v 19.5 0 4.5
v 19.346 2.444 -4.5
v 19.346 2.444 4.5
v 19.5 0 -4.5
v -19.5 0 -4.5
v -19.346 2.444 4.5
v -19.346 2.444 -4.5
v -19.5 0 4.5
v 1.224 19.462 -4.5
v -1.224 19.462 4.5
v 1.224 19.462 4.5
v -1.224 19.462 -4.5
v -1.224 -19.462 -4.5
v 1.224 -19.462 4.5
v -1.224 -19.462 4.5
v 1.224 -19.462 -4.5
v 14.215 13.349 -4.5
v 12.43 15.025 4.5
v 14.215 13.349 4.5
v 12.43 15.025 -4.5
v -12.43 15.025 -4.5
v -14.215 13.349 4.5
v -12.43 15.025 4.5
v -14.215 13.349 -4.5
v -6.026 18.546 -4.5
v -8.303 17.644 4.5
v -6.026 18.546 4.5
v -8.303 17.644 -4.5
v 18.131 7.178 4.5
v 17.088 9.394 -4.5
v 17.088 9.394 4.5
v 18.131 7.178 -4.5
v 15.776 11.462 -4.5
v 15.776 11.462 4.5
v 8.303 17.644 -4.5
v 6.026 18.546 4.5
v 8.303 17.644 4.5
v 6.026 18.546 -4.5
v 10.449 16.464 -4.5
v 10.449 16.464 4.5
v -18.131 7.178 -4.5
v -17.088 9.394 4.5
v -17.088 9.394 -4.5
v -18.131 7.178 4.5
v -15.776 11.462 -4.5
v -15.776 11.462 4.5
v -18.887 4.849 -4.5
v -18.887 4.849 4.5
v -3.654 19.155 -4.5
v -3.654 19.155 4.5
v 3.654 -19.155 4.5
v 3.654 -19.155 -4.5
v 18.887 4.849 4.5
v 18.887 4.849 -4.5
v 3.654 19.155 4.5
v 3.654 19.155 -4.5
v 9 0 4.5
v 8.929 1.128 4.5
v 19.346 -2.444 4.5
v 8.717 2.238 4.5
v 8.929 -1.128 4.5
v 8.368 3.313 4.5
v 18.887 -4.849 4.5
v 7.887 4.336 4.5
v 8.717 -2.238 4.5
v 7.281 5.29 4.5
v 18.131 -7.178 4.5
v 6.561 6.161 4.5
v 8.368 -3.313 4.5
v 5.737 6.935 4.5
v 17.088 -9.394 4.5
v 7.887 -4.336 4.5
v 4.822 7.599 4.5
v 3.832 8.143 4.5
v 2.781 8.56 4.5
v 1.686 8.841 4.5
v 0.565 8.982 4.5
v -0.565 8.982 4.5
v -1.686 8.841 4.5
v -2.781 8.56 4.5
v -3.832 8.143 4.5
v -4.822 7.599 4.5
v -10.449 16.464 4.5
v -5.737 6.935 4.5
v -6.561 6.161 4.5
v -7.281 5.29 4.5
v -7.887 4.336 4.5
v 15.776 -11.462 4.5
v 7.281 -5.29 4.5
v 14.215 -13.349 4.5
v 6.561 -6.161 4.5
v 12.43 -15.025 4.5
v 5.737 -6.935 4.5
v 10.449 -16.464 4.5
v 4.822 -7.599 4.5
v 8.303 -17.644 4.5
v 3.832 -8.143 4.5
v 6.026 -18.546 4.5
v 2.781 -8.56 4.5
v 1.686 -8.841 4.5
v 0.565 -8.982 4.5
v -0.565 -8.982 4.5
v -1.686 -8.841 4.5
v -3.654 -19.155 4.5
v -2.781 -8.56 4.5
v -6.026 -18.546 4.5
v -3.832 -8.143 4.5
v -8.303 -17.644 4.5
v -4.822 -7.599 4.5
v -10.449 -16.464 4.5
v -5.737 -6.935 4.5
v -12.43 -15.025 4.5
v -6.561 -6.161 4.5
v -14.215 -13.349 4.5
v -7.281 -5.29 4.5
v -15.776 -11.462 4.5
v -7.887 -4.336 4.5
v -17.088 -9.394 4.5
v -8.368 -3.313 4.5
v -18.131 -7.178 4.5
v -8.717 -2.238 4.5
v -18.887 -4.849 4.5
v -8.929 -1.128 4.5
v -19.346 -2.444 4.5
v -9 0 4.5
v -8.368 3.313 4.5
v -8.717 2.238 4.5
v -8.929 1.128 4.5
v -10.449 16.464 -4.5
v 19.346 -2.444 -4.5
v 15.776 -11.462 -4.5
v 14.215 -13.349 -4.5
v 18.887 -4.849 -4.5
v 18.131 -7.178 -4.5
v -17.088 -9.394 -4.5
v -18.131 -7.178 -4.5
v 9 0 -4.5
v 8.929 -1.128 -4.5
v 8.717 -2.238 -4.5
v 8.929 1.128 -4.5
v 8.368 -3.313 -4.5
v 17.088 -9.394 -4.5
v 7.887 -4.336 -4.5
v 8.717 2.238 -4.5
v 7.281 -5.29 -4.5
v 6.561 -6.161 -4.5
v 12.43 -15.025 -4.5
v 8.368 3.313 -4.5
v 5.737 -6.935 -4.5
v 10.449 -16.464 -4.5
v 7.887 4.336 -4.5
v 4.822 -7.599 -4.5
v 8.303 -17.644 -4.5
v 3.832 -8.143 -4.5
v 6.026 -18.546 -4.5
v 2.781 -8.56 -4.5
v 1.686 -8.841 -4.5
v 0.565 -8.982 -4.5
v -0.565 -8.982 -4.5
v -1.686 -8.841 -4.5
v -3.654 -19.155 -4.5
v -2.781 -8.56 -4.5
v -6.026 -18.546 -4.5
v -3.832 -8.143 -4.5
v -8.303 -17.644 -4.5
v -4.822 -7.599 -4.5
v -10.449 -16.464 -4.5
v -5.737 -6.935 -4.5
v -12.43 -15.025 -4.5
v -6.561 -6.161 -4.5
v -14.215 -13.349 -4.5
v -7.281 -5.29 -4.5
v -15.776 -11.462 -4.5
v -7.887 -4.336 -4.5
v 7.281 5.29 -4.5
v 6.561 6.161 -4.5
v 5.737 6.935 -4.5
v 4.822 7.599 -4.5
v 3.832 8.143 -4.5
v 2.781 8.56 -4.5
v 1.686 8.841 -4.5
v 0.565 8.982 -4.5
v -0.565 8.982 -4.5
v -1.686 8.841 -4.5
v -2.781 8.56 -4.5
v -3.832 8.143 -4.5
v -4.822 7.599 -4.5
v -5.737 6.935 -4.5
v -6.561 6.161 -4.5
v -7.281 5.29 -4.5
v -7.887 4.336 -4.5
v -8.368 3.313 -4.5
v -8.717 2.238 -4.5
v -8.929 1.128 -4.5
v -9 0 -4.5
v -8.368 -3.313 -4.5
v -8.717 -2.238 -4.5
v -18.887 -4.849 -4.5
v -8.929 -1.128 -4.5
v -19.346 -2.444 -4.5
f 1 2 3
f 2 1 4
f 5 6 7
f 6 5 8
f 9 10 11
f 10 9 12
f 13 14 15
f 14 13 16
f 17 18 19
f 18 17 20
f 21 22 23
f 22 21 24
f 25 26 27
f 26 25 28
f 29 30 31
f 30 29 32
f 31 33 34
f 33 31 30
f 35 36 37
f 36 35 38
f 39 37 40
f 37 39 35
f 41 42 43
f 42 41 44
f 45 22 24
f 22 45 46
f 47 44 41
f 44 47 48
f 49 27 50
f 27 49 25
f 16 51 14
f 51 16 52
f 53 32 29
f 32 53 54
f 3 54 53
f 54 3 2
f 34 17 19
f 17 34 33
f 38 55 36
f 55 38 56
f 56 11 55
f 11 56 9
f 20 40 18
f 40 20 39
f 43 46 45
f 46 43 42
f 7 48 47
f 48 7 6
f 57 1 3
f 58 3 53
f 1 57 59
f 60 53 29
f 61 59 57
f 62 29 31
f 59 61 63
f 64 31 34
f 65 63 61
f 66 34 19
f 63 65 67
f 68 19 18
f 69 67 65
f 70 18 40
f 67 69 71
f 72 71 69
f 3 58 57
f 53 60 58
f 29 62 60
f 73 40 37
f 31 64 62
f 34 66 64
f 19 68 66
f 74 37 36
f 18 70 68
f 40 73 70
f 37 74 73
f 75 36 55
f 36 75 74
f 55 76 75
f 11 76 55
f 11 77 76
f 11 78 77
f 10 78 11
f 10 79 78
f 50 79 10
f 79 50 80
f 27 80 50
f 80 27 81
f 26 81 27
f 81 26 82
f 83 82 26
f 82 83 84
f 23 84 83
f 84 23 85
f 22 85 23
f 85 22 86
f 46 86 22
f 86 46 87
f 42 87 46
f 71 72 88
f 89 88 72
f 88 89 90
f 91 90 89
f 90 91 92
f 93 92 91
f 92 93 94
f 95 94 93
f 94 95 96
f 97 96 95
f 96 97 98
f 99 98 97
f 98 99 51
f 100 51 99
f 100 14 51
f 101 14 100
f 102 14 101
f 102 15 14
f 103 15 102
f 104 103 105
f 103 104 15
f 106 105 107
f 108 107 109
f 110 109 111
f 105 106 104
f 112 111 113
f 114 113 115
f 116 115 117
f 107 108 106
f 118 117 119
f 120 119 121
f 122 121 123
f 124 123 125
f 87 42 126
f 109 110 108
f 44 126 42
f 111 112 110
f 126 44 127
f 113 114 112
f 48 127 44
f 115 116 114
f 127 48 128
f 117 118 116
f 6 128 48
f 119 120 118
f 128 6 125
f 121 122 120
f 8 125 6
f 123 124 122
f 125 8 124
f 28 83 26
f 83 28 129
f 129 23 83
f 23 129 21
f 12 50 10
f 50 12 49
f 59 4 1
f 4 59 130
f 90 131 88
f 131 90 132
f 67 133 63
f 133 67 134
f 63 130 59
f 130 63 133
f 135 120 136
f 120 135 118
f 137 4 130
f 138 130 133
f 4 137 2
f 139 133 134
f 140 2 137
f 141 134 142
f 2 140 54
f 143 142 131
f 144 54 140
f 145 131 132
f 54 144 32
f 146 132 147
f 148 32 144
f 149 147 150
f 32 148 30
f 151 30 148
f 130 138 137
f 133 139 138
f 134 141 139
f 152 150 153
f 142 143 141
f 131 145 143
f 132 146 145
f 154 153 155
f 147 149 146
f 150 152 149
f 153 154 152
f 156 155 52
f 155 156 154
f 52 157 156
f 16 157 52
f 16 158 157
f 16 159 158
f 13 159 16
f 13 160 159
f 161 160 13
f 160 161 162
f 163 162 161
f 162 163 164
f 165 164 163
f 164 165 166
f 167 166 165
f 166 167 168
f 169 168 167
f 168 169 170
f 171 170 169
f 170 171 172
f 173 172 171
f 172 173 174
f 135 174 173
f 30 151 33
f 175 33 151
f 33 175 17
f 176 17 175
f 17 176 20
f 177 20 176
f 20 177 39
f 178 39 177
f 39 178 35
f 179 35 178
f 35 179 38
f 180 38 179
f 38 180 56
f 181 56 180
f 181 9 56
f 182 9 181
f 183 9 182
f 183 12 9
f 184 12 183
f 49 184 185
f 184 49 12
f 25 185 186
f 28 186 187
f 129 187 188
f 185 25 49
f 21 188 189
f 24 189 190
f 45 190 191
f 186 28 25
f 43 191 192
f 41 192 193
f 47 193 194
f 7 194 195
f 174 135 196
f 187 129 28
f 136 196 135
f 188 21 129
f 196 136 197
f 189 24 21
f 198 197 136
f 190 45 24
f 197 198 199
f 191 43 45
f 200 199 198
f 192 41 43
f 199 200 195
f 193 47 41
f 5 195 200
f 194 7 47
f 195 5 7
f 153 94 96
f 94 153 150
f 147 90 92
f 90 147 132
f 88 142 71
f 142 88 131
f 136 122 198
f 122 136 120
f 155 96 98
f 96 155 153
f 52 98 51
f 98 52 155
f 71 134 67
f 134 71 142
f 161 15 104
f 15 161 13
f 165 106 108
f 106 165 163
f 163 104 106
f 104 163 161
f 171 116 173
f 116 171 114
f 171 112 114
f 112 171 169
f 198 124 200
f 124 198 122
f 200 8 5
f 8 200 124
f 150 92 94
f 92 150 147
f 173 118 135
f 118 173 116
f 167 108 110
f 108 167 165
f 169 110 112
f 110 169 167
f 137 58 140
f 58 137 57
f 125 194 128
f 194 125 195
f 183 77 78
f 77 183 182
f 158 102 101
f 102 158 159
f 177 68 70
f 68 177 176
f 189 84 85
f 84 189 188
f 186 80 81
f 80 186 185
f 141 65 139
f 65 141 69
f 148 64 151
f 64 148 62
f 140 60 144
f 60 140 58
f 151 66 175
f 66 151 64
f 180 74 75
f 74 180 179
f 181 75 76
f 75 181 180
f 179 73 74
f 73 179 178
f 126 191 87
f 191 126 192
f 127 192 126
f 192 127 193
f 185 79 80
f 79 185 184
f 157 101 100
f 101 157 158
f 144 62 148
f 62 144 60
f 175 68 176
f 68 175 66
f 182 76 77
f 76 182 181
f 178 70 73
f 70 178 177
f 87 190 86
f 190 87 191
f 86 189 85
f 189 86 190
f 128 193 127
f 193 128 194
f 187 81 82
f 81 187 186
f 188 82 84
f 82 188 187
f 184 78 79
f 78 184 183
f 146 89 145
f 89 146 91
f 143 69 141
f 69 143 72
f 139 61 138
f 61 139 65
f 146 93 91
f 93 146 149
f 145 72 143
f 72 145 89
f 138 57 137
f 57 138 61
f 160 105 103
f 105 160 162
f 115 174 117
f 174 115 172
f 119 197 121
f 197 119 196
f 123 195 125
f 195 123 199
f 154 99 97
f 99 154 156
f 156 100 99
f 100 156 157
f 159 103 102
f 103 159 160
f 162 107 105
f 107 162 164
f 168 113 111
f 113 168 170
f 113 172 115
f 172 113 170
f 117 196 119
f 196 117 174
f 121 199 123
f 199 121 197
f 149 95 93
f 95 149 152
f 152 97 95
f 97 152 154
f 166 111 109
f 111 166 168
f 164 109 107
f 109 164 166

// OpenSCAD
$fn = 50;


difference() {
	union() {
		translate(v = [0, 0, -4.5000000000]) {
			cylinder(h = 9, r = 19.5000000000);
		}
	}
	union() {
		translate(v = [0, 0, -100.0000000000]) {
			cylinder(h = 200, r = 9);
		}
	}
}
